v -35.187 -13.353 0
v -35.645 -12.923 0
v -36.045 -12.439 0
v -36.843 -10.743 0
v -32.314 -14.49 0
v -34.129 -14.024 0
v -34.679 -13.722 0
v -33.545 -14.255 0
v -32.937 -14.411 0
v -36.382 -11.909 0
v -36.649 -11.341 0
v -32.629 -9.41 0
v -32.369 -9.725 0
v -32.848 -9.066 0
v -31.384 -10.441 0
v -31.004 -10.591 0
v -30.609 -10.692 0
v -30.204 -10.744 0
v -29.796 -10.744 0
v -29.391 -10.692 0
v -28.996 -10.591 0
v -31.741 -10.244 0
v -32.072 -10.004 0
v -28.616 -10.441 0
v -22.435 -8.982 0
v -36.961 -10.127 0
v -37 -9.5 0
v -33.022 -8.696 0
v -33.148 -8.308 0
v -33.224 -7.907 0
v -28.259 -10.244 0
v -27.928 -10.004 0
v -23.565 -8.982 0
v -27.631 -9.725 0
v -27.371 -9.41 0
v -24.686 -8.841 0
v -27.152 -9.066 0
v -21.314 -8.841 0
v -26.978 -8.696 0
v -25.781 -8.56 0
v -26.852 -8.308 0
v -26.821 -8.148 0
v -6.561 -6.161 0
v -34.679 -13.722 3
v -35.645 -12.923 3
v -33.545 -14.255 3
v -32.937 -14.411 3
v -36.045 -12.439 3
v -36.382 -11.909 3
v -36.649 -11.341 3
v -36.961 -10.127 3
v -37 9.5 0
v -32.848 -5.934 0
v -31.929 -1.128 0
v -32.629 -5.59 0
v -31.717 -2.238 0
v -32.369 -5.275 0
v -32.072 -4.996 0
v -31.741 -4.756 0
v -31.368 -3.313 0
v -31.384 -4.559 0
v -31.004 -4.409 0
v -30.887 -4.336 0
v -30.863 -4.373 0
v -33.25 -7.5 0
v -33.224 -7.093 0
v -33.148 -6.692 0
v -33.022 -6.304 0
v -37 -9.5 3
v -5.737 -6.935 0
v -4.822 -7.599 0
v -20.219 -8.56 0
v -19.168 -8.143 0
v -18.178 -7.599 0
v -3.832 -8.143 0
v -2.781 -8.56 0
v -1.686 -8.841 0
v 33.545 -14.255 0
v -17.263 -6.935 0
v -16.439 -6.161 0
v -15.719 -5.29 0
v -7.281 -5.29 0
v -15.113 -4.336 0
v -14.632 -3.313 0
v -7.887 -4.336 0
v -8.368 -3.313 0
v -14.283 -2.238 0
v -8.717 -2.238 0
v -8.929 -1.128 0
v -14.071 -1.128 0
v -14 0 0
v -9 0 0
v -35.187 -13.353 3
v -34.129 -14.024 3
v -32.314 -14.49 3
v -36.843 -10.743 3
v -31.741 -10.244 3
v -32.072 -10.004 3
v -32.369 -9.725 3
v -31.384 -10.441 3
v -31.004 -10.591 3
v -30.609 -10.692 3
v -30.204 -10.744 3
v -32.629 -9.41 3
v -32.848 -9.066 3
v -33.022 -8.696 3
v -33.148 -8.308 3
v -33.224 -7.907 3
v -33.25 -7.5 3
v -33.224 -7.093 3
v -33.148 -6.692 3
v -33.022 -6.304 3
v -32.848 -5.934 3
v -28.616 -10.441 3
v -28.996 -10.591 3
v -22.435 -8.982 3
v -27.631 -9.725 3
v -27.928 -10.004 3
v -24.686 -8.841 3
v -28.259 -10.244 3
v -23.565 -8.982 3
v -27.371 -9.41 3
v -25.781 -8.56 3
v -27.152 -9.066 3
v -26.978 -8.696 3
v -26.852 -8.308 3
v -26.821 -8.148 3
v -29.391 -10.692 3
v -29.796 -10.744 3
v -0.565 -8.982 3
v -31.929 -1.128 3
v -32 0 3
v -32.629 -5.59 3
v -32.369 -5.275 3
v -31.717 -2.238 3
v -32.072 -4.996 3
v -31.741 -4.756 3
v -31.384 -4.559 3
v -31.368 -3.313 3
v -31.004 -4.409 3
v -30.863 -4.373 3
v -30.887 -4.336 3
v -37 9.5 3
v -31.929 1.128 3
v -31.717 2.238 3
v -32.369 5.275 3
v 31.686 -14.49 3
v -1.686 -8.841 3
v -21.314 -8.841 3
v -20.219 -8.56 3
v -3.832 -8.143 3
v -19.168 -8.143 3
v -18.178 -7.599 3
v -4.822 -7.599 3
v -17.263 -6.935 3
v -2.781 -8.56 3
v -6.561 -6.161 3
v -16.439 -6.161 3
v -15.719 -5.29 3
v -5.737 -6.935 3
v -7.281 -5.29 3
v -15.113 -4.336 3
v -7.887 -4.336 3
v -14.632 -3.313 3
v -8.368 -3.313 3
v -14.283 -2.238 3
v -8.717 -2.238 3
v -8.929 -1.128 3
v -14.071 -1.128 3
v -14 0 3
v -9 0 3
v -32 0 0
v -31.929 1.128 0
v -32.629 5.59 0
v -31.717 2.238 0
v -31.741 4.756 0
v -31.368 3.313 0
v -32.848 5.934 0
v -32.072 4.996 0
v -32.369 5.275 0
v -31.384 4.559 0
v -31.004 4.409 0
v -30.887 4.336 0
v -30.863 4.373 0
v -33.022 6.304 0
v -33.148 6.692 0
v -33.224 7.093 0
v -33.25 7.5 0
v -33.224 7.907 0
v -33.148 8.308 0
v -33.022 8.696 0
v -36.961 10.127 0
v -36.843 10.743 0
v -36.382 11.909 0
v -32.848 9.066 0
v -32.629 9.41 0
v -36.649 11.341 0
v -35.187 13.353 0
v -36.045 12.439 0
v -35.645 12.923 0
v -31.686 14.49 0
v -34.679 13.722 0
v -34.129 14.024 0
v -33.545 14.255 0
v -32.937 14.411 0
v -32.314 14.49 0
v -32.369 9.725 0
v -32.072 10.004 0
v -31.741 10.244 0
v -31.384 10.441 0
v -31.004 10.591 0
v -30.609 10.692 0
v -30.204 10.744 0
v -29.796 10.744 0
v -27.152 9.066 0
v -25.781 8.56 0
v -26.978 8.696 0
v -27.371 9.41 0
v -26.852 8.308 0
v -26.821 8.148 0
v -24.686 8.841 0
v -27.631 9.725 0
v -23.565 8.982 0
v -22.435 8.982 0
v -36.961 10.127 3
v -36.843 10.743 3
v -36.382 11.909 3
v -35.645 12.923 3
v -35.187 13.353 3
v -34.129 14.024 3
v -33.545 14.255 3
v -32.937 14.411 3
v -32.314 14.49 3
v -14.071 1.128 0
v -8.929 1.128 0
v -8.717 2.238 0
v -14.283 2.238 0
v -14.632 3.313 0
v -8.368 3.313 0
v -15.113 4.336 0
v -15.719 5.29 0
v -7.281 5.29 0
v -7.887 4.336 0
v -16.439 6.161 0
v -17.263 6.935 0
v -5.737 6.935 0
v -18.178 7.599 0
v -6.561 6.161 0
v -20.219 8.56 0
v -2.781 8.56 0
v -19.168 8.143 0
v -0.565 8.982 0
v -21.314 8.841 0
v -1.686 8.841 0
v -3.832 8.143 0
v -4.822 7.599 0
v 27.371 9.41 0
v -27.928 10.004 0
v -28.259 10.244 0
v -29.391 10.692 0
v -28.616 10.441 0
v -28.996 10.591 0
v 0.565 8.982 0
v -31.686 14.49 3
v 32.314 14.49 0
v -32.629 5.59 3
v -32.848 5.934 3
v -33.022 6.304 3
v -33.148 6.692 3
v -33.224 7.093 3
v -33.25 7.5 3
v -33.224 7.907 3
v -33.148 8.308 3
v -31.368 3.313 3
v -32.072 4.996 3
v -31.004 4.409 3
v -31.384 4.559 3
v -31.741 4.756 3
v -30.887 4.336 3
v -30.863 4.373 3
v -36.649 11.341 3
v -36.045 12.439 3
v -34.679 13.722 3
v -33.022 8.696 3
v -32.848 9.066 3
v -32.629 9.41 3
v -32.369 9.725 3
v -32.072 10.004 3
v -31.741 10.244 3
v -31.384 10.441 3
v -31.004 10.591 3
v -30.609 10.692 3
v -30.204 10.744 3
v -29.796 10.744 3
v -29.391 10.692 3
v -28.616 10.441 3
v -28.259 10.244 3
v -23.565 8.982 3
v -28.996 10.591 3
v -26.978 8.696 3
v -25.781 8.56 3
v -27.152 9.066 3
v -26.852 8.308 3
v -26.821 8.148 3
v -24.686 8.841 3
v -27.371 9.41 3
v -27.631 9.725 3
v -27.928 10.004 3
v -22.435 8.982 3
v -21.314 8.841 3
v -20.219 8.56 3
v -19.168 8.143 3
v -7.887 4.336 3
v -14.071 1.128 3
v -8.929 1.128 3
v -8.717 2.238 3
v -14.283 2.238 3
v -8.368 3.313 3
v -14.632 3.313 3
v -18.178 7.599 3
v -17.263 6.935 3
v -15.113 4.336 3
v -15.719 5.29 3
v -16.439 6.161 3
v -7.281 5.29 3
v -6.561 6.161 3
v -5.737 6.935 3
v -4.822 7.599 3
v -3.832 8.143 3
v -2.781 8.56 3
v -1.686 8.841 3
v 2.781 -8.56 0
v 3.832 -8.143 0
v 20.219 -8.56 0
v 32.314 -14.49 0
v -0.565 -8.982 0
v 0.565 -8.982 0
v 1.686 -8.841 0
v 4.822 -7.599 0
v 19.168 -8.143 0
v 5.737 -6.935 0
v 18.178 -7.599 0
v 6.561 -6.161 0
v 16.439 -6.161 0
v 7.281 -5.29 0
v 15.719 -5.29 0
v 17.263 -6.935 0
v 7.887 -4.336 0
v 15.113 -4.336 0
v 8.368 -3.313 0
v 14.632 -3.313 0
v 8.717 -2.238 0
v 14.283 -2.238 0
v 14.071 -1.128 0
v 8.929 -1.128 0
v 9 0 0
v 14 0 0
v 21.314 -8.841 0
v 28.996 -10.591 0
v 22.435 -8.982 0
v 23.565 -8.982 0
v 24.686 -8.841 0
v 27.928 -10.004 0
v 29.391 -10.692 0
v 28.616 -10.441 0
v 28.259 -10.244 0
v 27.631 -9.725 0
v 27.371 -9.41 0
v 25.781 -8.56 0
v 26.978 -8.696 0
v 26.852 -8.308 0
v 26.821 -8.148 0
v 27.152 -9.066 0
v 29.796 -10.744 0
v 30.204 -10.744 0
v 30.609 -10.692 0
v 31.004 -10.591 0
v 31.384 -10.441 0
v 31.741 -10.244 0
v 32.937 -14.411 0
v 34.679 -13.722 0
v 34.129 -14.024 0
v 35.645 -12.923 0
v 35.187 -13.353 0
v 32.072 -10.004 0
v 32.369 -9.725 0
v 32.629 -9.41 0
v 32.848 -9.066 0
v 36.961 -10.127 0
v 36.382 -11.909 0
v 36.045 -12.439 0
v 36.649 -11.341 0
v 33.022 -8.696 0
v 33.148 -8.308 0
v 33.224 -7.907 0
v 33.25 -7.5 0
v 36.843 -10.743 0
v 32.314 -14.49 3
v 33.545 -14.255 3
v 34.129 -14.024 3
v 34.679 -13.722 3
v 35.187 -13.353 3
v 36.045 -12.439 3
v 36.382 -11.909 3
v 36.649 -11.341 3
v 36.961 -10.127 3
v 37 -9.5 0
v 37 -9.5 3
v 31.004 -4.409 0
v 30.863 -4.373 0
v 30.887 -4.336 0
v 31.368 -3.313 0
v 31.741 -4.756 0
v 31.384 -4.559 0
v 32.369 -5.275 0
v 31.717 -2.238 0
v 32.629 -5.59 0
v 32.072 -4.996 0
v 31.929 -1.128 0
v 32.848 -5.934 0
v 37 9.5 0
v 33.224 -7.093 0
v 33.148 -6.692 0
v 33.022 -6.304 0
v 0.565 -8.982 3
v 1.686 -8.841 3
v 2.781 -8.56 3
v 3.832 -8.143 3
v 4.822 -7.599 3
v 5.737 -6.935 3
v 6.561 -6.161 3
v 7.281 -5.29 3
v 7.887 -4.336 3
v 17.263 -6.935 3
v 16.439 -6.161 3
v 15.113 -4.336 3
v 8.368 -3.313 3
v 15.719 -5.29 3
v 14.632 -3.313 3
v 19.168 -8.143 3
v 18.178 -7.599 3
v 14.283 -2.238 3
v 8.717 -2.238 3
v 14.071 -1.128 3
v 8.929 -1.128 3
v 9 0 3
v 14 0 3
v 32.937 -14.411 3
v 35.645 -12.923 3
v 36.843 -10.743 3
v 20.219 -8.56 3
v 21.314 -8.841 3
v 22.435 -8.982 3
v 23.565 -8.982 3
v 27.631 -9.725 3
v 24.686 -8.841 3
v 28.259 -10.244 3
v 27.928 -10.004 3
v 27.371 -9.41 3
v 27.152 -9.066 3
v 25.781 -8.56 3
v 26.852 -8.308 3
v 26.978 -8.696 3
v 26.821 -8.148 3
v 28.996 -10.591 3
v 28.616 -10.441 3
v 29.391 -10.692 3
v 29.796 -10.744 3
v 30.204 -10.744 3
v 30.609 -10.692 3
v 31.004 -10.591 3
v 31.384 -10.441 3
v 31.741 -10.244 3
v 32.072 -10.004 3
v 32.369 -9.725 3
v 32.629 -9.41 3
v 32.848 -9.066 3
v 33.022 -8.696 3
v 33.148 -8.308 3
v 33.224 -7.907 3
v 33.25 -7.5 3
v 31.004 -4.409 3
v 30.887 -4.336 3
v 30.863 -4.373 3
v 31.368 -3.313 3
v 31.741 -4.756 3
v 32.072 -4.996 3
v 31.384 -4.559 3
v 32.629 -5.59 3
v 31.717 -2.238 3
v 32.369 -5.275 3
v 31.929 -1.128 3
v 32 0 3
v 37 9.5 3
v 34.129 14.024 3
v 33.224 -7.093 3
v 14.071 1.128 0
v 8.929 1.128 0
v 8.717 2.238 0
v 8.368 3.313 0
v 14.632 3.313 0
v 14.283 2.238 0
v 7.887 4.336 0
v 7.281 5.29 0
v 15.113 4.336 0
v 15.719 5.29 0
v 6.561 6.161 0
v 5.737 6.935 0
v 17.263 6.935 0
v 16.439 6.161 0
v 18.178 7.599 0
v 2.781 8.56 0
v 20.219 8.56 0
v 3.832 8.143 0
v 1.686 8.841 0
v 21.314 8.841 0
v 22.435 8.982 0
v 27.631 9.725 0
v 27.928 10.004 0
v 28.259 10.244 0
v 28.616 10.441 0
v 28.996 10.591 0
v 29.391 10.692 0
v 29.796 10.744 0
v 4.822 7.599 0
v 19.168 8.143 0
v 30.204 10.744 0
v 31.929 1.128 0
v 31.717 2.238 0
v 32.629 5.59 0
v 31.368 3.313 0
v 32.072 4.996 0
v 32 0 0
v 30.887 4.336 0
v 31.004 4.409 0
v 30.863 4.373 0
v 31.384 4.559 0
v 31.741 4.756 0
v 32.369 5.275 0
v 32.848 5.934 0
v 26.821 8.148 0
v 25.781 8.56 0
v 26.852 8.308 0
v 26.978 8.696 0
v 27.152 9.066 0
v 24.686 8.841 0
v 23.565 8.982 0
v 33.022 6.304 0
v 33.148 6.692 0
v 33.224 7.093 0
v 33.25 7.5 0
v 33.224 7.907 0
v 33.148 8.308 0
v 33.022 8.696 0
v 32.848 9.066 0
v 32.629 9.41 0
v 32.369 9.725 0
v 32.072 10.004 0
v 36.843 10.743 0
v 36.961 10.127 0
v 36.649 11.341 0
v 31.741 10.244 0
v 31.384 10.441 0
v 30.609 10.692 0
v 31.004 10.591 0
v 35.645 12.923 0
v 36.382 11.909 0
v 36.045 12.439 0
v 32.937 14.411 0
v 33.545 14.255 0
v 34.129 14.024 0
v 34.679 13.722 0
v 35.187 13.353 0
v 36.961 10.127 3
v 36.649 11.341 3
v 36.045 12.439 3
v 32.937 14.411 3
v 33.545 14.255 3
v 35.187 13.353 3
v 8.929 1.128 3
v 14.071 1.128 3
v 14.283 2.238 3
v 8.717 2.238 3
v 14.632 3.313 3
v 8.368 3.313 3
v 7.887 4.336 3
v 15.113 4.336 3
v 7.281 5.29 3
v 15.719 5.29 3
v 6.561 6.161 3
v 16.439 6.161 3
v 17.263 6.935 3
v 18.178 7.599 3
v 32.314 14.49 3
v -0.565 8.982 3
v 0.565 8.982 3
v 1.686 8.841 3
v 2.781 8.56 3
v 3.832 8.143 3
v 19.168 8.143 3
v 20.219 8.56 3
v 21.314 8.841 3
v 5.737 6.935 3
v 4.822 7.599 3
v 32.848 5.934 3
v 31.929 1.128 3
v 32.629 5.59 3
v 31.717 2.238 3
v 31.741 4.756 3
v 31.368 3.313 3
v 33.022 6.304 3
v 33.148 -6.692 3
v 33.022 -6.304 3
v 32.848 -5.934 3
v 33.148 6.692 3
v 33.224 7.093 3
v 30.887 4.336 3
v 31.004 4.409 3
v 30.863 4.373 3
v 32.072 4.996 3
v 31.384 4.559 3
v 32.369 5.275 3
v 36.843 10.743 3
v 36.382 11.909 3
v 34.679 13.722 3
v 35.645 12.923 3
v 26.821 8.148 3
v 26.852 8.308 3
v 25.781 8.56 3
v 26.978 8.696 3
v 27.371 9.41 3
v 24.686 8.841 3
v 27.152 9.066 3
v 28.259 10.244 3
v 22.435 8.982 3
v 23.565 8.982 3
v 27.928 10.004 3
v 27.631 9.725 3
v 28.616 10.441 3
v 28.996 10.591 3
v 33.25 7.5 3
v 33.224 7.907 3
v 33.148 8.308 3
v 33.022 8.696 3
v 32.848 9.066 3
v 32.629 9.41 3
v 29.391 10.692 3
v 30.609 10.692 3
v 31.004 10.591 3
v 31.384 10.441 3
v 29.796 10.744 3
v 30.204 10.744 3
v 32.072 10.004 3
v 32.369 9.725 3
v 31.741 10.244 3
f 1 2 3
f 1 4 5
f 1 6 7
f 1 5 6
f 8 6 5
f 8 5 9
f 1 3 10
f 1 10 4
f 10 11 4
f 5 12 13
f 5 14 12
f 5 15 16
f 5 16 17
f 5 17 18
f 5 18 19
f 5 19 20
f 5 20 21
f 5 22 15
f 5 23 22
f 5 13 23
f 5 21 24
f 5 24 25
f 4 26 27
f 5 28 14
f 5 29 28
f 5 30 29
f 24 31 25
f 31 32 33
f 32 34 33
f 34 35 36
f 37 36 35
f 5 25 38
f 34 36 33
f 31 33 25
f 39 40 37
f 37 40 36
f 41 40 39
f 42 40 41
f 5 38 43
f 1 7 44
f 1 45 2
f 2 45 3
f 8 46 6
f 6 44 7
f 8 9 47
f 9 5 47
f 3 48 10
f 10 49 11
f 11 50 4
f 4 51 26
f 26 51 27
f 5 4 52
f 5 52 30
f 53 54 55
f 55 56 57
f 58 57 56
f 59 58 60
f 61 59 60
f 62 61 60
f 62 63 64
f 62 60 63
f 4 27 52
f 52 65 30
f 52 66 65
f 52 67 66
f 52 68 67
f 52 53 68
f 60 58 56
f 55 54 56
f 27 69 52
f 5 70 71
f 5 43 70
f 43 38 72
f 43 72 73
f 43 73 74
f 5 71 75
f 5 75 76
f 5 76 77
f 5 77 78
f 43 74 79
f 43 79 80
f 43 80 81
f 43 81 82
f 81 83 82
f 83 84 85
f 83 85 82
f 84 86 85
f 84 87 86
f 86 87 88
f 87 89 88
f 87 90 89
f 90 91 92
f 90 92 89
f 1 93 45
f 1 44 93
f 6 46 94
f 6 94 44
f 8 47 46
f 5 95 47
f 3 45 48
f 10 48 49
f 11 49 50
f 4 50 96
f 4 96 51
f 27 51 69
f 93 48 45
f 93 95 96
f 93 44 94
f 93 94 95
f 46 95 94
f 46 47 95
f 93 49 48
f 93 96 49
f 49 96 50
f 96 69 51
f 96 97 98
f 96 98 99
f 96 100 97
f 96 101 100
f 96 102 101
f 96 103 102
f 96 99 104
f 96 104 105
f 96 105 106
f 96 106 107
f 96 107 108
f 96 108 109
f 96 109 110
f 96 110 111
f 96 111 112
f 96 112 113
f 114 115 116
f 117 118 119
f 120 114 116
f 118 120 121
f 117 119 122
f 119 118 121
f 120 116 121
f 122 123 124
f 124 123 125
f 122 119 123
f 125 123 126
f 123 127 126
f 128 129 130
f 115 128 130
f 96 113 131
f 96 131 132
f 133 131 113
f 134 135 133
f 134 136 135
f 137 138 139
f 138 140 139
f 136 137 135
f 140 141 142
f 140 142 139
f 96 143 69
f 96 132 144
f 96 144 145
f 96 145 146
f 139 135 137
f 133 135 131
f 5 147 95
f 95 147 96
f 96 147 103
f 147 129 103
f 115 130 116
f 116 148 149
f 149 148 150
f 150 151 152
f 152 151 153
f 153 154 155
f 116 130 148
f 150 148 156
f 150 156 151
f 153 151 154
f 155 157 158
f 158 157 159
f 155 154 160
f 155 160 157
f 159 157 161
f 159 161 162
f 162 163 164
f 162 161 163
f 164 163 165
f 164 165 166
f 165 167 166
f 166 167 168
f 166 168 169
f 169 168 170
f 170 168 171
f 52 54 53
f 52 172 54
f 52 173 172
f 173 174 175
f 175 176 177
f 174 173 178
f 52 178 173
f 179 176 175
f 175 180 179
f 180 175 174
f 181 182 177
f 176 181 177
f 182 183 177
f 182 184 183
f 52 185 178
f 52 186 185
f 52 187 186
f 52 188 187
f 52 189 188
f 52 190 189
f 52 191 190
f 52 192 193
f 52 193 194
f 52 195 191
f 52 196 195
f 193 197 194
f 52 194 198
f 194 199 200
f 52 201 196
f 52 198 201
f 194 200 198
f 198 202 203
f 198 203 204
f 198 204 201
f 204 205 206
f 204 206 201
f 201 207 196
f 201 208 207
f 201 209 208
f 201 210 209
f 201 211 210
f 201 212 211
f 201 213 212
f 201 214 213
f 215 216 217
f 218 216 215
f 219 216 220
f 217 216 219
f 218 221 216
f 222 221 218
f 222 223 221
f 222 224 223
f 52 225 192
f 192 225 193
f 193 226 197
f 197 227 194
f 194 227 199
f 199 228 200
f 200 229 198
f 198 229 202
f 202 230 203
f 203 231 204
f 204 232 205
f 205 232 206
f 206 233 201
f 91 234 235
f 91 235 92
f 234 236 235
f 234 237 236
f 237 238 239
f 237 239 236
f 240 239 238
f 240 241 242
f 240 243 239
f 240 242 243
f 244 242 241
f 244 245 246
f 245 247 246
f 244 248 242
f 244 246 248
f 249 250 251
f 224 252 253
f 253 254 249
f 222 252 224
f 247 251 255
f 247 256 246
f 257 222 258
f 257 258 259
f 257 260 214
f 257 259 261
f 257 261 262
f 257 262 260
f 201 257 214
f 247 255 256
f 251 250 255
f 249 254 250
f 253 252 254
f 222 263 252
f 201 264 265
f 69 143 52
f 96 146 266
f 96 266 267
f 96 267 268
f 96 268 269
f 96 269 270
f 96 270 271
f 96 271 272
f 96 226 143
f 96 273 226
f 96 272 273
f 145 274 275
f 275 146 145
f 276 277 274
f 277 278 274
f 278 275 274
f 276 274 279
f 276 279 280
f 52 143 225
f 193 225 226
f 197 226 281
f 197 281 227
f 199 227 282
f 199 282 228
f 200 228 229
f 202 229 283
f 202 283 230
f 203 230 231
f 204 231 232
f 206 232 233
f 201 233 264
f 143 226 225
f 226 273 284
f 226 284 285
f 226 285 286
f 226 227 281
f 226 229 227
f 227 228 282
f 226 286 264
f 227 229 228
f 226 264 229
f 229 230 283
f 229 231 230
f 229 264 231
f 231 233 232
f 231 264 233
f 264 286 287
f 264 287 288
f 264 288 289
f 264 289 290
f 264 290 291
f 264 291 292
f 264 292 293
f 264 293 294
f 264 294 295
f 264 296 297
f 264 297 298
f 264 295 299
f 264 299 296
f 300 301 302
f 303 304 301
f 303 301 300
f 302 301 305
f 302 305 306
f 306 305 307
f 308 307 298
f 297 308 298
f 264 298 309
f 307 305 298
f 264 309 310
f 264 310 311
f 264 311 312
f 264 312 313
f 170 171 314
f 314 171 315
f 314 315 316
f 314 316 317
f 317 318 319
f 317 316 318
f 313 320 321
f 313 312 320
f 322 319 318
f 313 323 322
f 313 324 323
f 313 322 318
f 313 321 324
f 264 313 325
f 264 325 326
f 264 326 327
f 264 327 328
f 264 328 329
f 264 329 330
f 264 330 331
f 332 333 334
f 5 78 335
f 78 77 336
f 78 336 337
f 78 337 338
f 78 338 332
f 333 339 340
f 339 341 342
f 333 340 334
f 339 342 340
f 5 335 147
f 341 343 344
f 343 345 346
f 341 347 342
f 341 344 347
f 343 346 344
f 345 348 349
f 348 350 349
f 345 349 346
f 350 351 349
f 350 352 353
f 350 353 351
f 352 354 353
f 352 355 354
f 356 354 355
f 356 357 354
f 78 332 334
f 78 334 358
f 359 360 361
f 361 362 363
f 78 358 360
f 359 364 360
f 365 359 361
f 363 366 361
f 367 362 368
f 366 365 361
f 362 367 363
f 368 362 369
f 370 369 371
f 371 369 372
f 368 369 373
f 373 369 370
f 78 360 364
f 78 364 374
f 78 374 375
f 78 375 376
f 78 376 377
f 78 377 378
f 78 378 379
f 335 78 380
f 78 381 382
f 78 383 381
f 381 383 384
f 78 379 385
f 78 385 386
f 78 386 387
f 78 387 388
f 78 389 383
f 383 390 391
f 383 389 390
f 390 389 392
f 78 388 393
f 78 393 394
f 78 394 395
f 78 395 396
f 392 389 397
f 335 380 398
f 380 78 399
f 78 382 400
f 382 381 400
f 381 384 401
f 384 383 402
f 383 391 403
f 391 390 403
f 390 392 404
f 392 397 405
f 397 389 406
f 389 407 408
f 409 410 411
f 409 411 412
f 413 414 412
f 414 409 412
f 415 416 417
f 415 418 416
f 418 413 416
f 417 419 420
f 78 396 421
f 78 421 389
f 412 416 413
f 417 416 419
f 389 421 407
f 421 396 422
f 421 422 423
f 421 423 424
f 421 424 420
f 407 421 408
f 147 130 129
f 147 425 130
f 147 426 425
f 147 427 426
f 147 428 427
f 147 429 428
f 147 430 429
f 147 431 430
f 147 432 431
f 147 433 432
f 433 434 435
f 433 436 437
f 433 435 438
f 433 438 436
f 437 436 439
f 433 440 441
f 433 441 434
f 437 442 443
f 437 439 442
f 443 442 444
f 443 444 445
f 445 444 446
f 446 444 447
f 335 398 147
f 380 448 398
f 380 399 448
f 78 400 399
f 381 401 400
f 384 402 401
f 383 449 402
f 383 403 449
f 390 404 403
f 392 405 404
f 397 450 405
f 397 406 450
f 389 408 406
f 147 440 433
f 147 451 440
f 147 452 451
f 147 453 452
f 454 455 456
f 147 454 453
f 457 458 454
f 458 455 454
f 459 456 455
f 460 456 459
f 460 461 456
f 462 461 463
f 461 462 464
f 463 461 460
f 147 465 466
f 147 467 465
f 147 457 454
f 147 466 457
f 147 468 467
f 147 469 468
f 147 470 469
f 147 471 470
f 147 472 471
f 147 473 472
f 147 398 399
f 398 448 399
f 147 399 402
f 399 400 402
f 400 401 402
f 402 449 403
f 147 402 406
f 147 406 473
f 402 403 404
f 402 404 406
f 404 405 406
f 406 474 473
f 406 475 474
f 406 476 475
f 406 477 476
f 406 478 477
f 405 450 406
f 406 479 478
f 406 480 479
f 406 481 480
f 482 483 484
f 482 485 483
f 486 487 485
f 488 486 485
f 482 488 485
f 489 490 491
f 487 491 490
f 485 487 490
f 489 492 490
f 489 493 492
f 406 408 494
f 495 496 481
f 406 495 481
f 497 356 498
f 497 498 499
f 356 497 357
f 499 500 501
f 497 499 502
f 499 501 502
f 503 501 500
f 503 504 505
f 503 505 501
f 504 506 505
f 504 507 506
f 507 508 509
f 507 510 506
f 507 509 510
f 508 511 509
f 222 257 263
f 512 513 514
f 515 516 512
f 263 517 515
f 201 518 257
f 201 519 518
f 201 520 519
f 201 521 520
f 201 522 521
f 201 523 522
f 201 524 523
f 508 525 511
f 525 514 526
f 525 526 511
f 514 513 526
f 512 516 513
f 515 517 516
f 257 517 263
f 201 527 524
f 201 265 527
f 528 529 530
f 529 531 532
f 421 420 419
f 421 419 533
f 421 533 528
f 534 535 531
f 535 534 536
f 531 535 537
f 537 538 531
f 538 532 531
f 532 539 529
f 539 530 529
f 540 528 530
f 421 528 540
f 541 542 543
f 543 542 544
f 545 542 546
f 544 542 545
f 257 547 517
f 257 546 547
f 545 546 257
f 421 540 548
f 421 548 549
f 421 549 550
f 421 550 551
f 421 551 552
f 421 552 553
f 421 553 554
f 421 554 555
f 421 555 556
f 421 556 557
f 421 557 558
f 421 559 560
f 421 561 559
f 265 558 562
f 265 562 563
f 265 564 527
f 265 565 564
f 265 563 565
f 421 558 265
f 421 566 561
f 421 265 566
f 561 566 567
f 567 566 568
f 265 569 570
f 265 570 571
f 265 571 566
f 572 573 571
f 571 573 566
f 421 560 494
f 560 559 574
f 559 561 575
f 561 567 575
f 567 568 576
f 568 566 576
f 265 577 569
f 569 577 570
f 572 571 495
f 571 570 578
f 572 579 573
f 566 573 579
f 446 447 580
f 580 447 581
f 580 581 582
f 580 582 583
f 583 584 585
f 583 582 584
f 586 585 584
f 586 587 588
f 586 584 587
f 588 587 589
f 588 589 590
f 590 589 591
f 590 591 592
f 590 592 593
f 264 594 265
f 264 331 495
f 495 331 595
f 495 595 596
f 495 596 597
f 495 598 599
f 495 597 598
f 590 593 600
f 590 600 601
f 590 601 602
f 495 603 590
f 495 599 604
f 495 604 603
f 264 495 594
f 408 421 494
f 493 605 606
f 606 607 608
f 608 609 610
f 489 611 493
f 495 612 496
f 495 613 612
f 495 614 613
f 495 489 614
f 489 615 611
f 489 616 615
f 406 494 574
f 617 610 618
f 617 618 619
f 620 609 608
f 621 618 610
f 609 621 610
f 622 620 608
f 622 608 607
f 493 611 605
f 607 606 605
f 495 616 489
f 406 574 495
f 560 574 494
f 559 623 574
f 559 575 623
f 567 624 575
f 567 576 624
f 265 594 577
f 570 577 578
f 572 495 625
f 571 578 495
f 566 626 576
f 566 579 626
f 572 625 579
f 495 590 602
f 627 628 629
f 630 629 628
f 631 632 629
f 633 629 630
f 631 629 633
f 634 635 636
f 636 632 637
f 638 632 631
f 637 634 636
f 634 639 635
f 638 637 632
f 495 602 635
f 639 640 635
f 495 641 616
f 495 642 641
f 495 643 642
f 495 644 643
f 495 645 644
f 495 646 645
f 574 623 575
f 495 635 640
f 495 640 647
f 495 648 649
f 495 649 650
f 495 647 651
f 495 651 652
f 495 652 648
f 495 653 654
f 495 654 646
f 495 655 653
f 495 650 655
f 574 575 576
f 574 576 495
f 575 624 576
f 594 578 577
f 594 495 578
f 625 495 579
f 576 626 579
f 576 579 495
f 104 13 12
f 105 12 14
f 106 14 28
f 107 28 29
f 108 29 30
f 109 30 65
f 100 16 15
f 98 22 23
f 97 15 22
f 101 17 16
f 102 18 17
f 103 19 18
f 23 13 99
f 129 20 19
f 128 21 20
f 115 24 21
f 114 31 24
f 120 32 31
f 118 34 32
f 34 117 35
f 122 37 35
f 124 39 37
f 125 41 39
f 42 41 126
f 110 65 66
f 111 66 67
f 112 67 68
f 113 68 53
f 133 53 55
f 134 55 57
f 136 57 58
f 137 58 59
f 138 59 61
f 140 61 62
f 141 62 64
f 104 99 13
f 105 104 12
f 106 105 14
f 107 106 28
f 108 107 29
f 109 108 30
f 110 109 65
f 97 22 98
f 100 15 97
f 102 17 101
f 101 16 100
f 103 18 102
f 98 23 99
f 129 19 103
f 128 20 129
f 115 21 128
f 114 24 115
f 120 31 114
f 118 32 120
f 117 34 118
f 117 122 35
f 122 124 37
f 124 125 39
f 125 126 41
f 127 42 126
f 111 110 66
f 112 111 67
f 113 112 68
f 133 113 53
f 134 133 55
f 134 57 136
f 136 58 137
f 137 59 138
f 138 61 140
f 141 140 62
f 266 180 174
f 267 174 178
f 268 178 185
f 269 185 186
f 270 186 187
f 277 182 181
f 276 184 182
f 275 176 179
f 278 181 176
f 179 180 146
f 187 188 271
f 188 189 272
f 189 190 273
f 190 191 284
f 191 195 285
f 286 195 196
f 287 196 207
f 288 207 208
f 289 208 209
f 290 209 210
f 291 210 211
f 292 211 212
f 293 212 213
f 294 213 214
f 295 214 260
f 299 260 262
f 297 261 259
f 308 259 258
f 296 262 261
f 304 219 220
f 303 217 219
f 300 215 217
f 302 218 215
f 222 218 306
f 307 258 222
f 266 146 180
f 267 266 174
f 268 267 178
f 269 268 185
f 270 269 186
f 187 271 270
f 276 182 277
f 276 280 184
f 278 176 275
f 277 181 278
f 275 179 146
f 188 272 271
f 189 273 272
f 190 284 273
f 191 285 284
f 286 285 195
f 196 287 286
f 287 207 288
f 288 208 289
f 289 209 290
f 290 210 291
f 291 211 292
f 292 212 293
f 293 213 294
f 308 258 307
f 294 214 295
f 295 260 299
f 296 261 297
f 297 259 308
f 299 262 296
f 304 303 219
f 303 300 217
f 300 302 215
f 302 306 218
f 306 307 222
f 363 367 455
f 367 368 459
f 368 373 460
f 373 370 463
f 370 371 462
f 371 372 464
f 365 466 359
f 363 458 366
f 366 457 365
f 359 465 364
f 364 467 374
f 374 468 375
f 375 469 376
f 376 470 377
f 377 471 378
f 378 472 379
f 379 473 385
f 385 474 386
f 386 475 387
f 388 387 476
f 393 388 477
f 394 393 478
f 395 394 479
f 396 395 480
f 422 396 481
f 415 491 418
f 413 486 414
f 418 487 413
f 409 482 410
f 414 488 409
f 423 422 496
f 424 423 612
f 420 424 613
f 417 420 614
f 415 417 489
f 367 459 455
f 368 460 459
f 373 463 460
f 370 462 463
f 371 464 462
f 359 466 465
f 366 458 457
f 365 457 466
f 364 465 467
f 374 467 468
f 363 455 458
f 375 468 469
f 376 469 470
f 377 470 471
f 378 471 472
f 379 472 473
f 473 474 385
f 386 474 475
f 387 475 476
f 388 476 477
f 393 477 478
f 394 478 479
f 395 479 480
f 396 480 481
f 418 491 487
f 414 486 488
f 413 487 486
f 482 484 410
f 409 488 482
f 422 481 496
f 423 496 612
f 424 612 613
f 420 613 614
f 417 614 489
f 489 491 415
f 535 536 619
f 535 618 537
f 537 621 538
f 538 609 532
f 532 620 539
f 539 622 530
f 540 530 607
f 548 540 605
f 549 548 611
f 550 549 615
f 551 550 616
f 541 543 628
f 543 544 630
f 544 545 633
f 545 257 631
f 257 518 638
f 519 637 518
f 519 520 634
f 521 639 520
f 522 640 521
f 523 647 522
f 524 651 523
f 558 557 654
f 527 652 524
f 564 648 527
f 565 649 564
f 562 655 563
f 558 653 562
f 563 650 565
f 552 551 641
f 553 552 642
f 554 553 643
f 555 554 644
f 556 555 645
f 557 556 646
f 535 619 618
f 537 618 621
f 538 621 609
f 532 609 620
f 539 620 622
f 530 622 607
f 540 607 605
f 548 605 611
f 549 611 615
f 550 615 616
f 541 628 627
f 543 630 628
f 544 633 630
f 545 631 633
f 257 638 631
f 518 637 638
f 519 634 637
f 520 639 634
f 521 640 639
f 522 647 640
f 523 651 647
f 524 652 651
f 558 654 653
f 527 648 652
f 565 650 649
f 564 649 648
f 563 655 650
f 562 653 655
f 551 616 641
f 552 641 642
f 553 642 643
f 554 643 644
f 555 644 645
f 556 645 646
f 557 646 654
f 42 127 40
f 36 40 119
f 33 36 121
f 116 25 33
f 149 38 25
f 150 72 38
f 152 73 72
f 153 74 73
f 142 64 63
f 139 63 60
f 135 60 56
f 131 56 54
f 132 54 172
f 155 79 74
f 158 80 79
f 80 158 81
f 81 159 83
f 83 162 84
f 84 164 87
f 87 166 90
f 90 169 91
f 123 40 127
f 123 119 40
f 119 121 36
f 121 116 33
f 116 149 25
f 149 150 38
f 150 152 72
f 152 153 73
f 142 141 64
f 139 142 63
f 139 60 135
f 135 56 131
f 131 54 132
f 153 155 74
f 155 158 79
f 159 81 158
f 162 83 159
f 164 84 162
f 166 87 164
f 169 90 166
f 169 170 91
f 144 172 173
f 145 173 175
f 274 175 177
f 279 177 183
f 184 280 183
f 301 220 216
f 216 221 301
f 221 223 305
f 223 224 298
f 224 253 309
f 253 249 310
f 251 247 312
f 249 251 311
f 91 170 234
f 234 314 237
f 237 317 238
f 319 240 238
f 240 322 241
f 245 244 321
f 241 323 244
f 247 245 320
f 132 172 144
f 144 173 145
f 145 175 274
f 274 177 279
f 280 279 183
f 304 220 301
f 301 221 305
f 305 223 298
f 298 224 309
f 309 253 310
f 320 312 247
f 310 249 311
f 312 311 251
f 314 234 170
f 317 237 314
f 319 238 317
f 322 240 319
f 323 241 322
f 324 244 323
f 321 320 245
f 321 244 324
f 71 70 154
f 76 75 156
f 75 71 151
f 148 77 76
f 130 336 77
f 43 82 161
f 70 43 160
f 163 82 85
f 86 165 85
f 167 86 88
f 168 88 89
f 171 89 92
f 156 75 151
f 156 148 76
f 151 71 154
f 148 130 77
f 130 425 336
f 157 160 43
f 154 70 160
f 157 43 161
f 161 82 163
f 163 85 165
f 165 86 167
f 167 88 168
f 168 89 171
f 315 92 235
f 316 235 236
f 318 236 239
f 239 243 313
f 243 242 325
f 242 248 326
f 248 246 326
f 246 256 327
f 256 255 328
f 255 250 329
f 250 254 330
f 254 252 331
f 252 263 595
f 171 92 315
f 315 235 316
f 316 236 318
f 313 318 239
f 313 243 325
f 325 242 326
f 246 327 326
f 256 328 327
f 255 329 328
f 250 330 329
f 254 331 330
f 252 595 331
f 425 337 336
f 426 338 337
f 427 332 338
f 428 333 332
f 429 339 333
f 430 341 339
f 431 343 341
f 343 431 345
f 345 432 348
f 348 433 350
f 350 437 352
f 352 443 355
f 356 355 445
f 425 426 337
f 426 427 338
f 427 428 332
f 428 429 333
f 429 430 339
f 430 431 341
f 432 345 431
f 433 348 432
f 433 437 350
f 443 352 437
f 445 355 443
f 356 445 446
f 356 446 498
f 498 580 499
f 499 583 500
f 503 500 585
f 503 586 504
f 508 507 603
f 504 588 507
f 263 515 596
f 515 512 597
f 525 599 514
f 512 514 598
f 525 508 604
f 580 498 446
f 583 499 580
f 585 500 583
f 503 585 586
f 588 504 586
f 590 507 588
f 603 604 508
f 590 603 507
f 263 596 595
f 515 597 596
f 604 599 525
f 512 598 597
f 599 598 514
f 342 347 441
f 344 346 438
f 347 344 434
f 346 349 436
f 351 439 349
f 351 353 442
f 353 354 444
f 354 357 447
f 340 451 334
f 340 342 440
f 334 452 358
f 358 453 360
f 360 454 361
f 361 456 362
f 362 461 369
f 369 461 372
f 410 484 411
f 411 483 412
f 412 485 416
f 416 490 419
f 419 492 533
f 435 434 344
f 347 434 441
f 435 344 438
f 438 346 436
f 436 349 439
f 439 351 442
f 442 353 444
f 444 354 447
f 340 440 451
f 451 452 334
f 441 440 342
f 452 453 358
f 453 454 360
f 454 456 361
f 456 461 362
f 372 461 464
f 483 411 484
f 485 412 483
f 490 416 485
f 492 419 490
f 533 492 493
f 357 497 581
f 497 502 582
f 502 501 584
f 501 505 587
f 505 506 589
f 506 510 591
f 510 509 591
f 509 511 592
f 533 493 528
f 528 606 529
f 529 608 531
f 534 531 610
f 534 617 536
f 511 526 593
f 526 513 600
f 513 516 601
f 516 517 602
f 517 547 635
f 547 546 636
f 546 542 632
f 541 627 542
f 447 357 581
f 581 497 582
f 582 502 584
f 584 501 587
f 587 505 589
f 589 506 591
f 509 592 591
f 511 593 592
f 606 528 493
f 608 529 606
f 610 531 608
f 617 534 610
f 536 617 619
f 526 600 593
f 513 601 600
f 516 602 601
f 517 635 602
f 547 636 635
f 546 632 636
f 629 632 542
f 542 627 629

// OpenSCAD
$fn = 50;

difference() {
	union() {
		hull() {
			translate(v = [-32.0, 9.5, 0]) {
				cylinder(h = 3, r = 5);
			}
			translate(v = [32.0, 9.5, 0]) {
				cylinder(h = 3, r = 5);
			}
			translate(v = [-32.0, -9.5, 0]) {
				cylinder(h = 3, r = 5);
			}
			translate(v = [32.0, -9.5, 0]) {
				cylinder(h = 3, r = 5);
			}
		}
	}
	union() {
		translate(v = [-30.0, -7.5, -100.0]) {
			cylinder(h = 200, r = 3.25);
		}
		translate(v = [-30.0, 7.5, -100.0]) {
			cylinder(h = 200, r = 3.25);
		}
		translate(v = [30.0, -7.5, -100.0]) {
			cylinder(h = 200, r = 3.25);
		}
		translate(v = [30.0, 7.5, -100.0]) {
			cylinder(h = 200, r = 3.25);
		}
		translate(v = [-30.0, -7.5, -100.0]) {
			cylinder(h = 200, r = 1.8);
		}
		translate(v = [-30.0, 7.5, -100.0]) {
			cylinder(h = 200, r = 1.8);
		}
		translate(v = [30.0, -7.5, -100.0]) {
			cylinder(h = 200, r = 1.8);
		}
		translate(v = [30.0, 7.5, -100.0]) {
			cylinder(h = 200, r = 1.8);
		}
		translate(v = [-23.0, 0, 0.0]) {
			cylinder(h = 3, r = 9.0);
		}
		cylinder(h = 3, r = 9.0);
		translate(v = [23.0, 0, 0.0]) {
			cylinder(h = 3, r = 9.0);
		}
	}
}
